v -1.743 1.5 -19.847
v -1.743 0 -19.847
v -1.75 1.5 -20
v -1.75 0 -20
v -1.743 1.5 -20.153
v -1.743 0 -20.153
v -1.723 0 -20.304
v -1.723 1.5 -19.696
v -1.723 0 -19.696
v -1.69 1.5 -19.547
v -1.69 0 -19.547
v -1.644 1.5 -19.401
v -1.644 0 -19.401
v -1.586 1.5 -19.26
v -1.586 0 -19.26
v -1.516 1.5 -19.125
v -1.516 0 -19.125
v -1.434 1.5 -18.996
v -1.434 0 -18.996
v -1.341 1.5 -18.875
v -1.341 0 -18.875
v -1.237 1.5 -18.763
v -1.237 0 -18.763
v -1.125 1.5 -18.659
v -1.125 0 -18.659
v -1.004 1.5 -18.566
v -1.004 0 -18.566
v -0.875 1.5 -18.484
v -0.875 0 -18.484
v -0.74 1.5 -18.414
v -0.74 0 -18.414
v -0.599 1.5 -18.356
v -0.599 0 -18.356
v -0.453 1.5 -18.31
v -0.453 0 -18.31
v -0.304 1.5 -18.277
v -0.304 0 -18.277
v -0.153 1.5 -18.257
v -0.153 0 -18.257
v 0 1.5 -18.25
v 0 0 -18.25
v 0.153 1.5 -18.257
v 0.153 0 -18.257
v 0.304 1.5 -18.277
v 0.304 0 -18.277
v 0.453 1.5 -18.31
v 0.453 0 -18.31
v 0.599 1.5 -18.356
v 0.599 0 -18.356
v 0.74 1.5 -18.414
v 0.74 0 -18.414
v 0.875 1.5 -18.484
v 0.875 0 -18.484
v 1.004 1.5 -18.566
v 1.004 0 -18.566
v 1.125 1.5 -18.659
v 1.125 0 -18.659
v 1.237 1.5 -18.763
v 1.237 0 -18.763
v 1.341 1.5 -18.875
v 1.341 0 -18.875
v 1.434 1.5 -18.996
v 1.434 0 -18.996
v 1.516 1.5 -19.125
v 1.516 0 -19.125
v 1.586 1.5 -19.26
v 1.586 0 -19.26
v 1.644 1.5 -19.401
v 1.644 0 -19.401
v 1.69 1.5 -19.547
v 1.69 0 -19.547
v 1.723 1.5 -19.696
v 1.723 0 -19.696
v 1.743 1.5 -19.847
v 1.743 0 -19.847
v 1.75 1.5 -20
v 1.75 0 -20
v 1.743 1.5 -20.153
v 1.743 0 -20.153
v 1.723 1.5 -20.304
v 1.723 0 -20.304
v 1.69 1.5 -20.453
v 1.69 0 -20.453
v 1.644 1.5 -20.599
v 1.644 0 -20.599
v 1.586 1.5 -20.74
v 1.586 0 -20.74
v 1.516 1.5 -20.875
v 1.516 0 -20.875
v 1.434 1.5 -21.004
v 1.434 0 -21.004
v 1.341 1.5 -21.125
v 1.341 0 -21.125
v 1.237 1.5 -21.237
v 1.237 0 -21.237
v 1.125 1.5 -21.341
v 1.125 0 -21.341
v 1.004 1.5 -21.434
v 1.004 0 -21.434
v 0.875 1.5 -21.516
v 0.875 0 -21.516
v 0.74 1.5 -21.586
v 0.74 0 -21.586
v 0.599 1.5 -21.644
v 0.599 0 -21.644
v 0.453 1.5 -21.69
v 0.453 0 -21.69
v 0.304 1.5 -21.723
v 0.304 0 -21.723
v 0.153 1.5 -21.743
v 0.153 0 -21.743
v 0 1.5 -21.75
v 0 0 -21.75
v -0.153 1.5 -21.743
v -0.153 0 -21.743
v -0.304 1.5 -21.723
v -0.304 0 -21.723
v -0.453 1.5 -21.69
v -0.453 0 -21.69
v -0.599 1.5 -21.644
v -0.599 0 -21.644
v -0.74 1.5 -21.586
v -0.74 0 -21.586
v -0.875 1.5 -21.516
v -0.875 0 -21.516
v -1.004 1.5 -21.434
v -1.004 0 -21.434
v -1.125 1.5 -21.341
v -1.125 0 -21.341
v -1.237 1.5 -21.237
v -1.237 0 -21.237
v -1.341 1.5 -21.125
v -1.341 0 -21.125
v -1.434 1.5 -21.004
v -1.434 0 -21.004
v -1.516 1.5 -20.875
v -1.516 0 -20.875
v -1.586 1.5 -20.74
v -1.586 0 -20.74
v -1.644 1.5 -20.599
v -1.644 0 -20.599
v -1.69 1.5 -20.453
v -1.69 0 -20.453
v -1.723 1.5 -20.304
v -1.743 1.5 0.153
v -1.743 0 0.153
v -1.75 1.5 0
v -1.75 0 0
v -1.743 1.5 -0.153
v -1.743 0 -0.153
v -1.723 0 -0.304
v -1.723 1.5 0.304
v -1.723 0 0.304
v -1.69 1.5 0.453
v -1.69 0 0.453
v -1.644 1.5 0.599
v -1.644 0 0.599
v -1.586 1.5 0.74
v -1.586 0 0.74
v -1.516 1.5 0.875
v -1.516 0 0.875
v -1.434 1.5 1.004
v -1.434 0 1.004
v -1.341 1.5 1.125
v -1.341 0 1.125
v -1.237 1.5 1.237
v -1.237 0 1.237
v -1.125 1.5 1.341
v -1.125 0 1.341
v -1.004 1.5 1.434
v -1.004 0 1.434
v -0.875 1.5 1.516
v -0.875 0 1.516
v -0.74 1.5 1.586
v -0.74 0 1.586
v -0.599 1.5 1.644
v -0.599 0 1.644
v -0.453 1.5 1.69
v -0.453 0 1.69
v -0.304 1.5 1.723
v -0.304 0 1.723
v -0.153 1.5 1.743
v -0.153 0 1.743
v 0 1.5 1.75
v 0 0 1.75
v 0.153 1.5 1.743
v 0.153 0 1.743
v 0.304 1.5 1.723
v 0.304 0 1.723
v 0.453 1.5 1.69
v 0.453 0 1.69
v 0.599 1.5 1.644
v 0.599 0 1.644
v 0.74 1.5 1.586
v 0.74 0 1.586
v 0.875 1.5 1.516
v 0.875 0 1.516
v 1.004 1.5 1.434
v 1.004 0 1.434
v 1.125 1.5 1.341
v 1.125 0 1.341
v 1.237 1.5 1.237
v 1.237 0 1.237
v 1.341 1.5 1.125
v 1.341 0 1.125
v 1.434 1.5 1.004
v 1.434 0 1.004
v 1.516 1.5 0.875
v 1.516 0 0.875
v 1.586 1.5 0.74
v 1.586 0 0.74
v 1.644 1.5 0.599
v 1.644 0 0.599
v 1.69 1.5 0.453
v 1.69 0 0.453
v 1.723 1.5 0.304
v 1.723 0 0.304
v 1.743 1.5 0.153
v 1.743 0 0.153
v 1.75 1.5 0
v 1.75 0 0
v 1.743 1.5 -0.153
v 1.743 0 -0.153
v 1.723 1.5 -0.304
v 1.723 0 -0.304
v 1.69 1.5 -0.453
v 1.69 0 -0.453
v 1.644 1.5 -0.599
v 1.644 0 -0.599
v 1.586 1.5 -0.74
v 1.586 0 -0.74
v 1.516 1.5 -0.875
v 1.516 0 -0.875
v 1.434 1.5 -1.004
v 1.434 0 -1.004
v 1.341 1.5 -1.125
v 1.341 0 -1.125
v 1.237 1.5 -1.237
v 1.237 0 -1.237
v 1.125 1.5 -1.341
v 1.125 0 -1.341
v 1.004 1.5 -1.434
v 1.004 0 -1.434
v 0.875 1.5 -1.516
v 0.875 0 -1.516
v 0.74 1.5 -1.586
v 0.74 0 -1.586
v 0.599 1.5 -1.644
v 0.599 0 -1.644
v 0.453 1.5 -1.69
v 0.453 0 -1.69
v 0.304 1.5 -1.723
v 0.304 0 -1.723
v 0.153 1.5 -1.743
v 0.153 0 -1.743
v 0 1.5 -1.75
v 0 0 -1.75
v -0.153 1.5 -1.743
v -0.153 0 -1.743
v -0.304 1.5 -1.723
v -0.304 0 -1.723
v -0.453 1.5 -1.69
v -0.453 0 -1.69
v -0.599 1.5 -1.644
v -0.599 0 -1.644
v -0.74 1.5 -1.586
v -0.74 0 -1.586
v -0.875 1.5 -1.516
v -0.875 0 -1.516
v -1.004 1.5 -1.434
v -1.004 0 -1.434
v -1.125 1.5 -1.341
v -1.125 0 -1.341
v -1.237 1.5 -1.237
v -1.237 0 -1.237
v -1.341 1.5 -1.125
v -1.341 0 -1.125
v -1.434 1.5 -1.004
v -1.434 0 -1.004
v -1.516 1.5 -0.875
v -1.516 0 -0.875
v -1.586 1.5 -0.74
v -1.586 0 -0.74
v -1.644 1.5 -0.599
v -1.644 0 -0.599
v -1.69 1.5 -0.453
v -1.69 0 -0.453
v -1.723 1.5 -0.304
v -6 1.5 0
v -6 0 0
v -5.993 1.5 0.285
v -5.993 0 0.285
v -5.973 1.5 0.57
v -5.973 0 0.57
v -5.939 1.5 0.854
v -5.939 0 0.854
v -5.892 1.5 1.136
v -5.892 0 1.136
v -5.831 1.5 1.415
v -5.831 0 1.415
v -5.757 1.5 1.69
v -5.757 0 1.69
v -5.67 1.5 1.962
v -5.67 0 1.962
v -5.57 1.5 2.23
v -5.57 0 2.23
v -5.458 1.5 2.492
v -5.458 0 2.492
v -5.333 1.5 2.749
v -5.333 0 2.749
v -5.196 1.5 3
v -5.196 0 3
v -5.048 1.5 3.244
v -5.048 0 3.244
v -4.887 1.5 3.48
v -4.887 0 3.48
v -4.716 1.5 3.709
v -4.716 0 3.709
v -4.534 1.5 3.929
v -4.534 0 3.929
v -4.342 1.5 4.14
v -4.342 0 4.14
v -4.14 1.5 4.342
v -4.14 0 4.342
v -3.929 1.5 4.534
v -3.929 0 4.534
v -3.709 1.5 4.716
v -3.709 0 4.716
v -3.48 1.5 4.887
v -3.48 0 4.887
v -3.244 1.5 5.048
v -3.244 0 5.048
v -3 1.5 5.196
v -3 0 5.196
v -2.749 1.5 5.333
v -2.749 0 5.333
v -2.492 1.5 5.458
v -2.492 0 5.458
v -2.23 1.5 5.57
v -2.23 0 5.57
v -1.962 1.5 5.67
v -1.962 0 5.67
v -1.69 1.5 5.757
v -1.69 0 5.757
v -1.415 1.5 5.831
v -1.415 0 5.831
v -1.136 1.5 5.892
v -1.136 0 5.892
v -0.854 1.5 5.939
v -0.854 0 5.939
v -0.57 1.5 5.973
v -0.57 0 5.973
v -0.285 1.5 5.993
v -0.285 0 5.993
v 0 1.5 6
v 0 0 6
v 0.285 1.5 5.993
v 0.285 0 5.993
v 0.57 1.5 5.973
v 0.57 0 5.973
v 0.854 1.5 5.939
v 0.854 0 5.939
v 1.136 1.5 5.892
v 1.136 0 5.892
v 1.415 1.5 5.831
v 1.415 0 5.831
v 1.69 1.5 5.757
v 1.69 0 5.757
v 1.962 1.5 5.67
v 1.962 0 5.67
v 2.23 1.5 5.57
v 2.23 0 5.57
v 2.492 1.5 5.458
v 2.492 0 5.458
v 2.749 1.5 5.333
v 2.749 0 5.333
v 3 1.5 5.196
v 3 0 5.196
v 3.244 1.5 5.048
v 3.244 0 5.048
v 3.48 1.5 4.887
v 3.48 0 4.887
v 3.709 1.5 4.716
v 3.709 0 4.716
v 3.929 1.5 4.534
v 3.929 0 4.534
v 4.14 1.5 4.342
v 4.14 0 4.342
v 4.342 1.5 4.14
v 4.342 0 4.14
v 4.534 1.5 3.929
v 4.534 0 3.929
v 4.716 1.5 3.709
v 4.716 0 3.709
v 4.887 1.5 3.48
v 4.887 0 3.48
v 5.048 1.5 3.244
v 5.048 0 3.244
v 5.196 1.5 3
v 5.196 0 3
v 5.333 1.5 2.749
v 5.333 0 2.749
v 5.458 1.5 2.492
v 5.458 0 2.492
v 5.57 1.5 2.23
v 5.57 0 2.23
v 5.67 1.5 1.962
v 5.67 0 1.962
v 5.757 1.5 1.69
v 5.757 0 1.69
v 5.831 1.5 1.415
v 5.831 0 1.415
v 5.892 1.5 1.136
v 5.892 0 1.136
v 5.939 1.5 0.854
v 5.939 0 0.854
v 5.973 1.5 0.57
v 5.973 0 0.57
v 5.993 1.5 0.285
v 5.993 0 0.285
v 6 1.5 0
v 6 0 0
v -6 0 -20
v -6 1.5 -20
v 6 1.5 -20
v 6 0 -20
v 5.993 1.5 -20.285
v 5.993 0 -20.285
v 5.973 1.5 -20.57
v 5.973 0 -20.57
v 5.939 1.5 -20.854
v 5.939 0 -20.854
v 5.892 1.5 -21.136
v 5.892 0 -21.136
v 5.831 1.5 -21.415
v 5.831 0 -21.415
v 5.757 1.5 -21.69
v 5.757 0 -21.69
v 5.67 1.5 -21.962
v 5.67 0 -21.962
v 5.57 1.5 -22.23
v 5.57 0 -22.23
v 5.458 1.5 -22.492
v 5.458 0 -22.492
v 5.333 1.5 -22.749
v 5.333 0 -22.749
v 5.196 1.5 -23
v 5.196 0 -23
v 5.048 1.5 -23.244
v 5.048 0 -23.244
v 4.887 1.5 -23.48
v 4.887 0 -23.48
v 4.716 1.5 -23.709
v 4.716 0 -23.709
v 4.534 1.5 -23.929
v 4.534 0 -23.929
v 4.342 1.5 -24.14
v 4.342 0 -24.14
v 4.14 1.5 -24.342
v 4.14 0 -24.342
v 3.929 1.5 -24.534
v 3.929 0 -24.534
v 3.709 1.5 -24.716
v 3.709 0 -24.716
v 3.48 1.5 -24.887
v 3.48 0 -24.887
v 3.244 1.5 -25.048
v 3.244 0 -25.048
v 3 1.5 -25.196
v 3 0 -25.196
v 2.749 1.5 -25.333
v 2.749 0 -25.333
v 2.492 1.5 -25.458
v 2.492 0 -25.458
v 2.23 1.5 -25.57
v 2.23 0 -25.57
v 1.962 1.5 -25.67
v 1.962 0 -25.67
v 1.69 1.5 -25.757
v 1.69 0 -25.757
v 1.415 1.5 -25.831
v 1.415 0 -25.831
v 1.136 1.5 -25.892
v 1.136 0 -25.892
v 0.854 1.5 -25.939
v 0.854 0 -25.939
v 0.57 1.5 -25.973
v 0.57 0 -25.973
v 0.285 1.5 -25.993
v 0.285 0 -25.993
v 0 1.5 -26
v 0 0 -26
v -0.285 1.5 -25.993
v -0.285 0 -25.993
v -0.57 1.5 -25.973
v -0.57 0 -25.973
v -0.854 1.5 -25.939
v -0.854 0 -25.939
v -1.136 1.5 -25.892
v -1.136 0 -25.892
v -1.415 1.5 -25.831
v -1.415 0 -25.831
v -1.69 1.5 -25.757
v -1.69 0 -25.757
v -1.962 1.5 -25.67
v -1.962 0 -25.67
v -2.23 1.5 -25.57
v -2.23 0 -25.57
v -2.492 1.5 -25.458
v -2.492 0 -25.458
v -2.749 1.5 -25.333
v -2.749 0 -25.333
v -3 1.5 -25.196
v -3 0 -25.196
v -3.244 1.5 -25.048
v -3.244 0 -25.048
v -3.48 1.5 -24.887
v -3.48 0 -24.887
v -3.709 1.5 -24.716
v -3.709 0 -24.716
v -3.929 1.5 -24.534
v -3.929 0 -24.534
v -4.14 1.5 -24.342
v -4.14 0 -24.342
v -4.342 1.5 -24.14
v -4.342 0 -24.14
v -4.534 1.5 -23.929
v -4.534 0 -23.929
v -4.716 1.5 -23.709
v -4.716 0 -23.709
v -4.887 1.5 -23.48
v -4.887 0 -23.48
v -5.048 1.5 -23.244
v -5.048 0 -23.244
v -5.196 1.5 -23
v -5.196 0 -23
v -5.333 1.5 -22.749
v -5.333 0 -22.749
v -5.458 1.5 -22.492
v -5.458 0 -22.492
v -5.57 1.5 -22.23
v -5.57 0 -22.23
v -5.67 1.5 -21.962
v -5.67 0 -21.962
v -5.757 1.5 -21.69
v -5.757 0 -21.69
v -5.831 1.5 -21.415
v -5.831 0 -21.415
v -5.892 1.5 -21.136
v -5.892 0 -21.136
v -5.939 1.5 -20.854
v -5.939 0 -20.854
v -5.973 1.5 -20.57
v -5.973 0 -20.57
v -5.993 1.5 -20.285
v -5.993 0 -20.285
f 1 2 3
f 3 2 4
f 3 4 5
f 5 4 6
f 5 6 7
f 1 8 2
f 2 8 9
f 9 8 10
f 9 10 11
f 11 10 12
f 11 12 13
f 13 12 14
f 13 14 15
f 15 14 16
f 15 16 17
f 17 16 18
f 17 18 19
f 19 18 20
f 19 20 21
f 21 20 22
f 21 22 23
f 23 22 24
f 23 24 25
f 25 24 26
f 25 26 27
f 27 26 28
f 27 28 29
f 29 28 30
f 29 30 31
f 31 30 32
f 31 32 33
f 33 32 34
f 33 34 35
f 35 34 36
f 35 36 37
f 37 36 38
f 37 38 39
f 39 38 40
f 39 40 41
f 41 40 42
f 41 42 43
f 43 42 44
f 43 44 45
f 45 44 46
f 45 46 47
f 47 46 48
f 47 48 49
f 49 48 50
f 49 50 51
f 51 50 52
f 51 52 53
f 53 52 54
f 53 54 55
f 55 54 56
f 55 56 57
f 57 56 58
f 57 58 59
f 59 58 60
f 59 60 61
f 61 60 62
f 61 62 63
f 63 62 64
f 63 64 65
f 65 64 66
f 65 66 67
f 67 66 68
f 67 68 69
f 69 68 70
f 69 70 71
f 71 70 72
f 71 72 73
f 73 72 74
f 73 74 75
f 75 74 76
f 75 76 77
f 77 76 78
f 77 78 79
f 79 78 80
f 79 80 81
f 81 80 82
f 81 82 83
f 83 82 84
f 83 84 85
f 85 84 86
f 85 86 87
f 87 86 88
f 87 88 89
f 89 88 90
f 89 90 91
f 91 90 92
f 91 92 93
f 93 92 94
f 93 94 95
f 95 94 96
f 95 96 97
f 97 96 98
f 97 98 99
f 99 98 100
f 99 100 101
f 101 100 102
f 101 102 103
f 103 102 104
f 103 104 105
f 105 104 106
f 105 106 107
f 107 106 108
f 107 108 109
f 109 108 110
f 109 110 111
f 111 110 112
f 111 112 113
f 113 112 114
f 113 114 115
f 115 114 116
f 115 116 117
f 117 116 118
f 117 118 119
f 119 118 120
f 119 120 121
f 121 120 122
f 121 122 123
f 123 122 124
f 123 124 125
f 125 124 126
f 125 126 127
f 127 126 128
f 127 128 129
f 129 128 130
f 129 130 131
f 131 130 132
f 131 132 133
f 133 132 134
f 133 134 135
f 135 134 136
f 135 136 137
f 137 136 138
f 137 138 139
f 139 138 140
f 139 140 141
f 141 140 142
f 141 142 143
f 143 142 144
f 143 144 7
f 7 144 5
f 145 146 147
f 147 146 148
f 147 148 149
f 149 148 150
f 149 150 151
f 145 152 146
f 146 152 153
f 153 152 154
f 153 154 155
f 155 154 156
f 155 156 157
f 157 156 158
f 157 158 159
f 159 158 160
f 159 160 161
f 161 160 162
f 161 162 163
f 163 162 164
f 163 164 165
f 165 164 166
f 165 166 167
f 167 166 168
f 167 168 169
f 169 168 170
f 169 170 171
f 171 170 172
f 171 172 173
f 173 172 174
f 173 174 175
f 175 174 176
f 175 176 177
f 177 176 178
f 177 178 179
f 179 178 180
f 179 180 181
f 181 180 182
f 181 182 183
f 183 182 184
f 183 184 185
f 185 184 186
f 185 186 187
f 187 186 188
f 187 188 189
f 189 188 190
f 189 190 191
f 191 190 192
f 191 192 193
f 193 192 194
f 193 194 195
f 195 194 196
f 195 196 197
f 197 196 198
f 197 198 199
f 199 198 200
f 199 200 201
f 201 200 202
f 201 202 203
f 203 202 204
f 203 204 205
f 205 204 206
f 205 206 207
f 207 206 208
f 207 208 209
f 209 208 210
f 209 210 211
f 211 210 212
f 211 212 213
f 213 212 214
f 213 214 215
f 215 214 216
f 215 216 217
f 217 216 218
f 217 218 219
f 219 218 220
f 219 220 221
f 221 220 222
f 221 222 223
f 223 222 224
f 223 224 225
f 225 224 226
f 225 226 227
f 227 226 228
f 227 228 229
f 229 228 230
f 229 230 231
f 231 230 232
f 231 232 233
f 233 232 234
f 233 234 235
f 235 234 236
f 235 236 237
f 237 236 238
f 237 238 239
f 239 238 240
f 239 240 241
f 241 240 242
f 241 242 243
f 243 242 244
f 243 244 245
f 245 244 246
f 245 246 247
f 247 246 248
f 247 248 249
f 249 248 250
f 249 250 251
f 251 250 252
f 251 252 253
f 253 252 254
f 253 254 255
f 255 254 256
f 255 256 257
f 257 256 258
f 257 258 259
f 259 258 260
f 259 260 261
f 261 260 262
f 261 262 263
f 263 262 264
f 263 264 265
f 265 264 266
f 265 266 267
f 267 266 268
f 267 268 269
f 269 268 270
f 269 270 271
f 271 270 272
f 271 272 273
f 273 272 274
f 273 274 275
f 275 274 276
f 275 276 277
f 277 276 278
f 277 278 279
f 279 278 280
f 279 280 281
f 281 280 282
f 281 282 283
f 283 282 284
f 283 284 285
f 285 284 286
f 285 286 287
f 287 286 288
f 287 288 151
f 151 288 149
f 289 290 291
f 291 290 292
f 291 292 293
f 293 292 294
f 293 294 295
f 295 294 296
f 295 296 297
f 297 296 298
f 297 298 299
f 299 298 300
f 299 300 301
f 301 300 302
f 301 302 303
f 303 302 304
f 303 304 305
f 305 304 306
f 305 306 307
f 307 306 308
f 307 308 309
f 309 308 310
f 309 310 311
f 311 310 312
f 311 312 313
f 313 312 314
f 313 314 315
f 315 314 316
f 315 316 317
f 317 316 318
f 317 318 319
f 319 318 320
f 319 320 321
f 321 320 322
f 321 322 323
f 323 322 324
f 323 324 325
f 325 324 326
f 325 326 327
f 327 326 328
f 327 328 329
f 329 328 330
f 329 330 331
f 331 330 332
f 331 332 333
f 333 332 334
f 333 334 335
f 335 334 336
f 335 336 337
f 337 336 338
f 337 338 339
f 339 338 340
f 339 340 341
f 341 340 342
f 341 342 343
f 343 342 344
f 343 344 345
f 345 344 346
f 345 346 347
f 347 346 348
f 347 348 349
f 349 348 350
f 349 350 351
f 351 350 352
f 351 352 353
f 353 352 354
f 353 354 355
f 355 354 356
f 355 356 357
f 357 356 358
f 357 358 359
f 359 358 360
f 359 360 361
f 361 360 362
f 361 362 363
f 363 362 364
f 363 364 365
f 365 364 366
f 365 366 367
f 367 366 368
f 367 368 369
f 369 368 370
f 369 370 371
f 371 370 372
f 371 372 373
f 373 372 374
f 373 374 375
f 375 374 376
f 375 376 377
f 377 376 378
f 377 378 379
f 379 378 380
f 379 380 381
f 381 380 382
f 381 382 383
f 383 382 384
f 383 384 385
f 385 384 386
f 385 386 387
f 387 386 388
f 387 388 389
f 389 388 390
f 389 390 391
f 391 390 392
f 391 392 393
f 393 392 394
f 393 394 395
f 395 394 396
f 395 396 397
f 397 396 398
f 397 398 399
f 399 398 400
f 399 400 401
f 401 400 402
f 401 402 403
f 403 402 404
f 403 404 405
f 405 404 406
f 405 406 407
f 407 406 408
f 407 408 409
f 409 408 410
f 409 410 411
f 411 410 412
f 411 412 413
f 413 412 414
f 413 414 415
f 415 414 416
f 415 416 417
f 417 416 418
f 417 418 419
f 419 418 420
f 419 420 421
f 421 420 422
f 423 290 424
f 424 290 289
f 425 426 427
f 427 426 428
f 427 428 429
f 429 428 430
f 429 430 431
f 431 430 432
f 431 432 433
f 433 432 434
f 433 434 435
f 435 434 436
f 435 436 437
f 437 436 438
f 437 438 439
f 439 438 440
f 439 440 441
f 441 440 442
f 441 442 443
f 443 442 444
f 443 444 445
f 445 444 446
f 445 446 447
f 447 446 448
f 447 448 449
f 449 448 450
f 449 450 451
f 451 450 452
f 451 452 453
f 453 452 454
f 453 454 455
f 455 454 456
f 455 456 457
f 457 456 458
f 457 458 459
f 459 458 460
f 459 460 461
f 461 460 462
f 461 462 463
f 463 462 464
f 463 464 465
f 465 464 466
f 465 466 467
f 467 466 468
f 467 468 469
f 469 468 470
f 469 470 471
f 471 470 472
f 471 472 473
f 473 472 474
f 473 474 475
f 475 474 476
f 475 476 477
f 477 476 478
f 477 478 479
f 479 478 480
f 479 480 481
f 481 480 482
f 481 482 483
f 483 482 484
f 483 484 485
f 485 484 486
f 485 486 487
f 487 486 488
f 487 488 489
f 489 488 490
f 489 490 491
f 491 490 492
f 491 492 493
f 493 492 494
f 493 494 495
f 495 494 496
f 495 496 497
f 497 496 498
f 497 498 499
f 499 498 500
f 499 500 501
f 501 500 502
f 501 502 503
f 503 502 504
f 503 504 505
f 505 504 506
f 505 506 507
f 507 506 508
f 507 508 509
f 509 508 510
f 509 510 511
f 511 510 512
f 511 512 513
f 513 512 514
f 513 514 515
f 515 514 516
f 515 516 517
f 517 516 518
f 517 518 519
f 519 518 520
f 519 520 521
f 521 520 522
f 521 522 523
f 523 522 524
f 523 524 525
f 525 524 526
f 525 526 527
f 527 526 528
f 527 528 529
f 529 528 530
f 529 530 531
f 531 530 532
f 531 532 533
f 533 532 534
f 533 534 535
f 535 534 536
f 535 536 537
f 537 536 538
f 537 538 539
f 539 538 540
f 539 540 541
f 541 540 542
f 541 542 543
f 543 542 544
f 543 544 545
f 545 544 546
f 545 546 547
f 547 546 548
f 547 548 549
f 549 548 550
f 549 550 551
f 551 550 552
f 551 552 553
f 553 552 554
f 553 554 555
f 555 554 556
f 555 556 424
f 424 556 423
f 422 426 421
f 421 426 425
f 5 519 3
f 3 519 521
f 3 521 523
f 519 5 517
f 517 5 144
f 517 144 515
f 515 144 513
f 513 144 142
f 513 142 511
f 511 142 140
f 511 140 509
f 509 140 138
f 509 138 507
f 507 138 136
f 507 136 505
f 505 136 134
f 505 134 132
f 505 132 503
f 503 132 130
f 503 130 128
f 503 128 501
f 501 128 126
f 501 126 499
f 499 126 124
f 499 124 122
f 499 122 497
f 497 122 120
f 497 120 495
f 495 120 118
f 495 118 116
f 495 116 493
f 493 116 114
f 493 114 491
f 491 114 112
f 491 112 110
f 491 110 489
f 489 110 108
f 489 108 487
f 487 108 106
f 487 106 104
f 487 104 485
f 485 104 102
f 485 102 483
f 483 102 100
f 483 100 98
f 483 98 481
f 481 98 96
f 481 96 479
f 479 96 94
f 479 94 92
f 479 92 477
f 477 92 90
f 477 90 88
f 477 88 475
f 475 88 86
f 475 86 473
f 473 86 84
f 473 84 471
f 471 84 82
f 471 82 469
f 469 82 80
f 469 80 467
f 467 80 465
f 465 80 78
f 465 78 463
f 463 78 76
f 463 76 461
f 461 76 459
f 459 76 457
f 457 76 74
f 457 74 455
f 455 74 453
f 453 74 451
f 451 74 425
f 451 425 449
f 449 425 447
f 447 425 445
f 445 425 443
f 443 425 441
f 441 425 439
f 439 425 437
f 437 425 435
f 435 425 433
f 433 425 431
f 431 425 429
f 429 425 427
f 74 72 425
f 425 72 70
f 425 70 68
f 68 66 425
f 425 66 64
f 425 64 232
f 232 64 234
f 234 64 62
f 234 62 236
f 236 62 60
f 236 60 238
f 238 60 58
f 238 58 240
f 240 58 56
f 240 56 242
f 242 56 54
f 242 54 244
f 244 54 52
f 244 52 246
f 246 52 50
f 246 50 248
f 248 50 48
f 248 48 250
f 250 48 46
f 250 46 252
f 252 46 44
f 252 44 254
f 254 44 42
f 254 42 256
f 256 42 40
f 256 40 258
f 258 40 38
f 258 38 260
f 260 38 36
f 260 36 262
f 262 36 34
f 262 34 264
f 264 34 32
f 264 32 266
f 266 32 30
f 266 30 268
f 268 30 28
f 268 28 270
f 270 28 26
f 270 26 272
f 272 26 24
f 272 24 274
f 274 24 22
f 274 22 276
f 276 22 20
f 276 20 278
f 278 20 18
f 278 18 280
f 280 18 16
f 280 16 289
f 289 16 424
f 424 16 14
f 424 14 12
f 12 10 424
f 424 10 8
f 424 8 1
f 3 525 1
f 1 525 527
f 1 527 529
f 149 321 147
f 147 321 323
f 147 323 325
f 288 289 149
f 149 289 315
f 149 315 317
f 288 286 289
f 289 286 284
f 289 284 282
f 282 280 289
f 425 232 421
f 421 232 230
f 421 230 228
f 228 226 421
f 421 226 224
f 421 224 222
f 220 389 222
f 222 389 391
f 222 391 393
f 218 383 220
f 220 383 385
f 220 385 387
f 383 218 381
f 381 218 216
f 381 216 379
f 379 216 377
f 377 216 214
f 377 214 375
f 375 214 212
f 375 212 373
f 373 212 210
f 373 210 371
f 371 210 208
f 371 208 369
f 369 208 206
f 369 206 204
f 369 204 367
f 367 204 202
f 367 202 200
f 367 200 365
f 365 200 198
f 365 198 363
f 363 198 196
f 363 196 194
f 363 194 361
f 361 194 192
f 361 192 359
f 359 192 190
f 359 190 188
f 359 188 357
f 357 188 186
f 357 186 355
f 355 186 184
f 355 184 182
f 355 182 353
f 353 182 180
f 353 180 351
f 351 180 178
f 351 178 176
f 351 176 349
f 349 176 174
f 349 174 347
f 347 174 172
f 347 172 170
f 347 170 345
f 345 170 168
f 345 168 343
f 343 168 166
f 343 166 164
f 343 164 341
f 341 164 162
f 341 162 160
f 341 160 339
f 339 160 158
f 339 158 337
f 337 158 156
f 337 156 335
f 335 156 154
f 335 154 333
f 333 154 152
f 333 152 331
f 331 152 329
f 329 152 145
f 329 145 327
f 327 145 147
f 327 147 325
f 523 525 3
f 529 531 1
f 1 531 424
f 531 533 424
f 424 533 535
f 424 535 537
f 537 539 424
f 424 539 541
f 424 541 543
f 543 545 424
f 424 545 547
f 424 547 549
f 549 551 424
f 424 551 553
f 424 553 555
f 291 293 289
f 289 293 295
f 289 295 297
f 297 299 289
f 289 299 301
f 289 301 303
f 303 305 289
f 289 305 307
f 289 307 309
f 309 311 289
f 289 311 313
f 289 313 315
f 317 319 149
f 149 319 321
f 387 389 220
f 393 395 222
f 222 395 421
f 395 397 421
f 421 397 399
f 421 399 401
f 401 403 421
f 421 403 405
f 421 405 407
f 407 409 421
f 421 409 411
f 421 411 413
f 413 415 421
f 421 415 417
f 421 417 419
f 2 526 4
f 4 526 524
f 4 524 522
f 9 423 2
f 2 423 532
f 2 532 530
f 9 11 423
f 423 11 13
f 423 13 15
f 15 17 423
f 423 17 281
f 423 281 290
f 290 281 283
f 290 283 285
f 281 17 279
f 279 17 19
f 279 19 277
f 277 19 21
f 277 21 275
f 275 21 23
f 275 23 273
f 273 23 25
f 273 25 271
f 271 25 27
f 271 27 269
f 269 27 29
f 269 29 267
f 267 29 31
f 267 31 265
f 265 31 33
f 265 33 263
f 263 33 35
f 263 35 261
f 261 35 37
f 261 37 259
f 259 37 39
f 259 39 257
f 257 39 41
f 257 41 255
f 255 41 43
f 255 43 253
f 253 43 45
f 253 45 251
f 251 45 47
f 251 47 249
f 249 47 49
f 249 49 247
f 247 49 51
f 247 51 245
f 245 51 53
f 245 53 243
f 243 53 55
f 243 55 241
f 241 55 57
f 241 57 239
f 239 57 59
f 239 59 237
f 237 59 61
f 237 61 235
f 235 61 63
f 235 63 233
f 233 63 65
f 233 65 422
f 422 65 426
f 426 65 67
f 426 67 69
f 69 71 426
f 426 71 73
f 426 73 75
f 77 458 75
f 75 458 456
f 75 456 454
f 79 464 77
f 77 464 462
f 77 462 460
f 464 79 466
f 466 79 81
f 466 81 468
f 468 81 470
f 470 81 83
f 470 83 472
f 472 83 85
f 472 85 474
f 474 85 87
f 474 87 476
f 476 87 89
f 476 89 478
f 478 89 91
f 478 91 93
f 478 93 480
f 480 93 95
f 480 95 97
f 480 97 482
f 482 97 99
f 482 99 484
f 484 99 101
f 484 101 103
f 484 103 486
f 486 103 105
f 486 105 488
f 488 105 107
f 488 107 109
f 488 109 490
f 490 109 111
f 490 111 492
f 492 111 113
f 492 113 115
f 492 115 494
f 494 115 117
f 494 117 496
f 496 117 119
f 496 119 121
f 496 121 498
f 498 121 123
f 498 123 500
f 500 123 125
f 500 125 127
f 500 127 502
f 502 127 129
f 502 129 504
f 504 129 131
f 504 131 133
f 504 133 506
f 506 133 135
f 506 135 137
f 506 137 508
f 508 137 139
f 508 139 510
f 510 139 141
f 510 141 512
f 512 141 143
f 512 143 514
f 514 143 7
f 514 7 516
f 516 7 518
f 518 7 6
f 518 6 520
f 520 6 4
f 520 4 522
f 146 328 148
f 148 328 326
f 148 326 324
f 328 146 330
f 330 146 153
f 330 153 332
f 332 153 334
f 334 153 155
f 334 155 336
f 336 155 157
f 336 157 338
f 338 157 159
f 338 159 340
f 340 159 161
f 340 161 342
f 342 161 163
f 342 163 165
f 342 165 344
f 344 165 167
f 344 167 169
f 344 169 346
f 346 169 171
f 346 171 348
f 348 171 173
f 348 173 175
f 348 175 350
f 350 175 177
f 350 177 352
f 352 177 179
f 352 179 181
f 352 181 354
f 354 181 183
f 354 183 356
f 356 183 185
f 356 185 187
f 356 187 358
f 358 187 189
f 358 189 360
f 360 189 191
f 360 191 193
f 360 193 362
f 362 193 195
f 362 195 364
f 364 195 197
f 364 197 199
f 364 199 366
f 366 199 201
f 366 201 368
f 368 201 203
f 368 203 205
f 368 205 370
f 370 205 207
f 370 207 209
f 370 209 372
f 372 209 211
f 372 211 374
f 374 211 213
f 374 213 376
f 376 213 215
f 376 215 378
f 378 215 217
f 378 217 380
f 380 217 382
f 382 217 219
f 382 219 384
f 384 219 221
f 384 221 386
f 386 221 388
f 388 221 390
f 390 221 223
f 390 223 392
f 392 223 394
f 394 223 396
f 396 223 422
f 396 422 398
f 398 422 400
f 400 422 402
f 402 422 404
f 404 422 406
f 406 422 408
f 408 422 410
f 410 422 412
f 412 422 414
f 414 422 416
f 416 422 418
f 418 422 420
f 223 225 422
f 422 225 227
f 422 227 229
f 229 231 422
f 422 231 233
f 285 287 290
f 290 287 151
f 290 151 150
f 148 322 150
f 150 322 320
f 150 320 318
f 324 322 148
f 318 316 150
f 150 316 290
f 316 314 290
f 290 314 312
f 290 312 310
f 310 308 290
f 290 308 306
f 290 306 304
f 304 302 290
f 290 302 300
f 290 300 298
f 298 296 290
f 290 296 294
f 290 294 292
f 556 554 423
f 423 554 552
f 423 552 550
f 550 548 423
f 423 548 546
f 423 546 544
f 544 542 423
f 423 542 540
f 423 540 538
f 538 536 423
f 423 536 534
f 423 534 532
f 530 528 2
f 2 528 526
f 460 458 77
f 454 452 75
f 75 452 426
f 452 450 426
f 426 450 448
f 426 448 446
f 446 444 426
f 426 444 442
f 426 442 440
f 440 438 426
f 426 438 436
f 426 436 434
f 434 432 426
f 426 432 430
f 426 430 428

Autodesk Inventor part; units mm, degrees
ref_plane "YZ Plane" through (0, 0, 0) normal (1, 0, 0) x (0, 1, 0)
ref_plane "XZ Plane" through (0, 0, 0) normal (0, 1, 0) x (-1, 0, 0)
ref_plane "XY Plane" through (0, 0, 0) normal (0, 0, 1) x (1, 0, 0)
sketch "Sketch1" plane through (0, 0, 0) normal (0, 1, 0) x (-1, 0, 0)
  line L0 (0, 0) -> (0, -20)
  circle A0 centre (0, 0) radius 1.75
  circle A1 centre (0, -20) radius 1.75
  line L1 (0, 0) -> (0, -20) construction
  line L2 (-6, 0) -> (-6, -20)
  line L3 (6, -20) -> (6, 0)
  arc A2 (6, 0) -> (-6, 0) centre (0, 0) ccw
  arc A3 (-6, -20) -> (6, -20) centre (0, -20) ccw
  point P0 (0, -10)
  dimension "d0" = 20
  dimension "d1" = 3.5
  dimension "d2" = 3.5
  dimension "d3" = 12
extrude "Extrusion1" add sketch "Sketch1" along normal blind 1.5
properties part number "LRF Clamp"
